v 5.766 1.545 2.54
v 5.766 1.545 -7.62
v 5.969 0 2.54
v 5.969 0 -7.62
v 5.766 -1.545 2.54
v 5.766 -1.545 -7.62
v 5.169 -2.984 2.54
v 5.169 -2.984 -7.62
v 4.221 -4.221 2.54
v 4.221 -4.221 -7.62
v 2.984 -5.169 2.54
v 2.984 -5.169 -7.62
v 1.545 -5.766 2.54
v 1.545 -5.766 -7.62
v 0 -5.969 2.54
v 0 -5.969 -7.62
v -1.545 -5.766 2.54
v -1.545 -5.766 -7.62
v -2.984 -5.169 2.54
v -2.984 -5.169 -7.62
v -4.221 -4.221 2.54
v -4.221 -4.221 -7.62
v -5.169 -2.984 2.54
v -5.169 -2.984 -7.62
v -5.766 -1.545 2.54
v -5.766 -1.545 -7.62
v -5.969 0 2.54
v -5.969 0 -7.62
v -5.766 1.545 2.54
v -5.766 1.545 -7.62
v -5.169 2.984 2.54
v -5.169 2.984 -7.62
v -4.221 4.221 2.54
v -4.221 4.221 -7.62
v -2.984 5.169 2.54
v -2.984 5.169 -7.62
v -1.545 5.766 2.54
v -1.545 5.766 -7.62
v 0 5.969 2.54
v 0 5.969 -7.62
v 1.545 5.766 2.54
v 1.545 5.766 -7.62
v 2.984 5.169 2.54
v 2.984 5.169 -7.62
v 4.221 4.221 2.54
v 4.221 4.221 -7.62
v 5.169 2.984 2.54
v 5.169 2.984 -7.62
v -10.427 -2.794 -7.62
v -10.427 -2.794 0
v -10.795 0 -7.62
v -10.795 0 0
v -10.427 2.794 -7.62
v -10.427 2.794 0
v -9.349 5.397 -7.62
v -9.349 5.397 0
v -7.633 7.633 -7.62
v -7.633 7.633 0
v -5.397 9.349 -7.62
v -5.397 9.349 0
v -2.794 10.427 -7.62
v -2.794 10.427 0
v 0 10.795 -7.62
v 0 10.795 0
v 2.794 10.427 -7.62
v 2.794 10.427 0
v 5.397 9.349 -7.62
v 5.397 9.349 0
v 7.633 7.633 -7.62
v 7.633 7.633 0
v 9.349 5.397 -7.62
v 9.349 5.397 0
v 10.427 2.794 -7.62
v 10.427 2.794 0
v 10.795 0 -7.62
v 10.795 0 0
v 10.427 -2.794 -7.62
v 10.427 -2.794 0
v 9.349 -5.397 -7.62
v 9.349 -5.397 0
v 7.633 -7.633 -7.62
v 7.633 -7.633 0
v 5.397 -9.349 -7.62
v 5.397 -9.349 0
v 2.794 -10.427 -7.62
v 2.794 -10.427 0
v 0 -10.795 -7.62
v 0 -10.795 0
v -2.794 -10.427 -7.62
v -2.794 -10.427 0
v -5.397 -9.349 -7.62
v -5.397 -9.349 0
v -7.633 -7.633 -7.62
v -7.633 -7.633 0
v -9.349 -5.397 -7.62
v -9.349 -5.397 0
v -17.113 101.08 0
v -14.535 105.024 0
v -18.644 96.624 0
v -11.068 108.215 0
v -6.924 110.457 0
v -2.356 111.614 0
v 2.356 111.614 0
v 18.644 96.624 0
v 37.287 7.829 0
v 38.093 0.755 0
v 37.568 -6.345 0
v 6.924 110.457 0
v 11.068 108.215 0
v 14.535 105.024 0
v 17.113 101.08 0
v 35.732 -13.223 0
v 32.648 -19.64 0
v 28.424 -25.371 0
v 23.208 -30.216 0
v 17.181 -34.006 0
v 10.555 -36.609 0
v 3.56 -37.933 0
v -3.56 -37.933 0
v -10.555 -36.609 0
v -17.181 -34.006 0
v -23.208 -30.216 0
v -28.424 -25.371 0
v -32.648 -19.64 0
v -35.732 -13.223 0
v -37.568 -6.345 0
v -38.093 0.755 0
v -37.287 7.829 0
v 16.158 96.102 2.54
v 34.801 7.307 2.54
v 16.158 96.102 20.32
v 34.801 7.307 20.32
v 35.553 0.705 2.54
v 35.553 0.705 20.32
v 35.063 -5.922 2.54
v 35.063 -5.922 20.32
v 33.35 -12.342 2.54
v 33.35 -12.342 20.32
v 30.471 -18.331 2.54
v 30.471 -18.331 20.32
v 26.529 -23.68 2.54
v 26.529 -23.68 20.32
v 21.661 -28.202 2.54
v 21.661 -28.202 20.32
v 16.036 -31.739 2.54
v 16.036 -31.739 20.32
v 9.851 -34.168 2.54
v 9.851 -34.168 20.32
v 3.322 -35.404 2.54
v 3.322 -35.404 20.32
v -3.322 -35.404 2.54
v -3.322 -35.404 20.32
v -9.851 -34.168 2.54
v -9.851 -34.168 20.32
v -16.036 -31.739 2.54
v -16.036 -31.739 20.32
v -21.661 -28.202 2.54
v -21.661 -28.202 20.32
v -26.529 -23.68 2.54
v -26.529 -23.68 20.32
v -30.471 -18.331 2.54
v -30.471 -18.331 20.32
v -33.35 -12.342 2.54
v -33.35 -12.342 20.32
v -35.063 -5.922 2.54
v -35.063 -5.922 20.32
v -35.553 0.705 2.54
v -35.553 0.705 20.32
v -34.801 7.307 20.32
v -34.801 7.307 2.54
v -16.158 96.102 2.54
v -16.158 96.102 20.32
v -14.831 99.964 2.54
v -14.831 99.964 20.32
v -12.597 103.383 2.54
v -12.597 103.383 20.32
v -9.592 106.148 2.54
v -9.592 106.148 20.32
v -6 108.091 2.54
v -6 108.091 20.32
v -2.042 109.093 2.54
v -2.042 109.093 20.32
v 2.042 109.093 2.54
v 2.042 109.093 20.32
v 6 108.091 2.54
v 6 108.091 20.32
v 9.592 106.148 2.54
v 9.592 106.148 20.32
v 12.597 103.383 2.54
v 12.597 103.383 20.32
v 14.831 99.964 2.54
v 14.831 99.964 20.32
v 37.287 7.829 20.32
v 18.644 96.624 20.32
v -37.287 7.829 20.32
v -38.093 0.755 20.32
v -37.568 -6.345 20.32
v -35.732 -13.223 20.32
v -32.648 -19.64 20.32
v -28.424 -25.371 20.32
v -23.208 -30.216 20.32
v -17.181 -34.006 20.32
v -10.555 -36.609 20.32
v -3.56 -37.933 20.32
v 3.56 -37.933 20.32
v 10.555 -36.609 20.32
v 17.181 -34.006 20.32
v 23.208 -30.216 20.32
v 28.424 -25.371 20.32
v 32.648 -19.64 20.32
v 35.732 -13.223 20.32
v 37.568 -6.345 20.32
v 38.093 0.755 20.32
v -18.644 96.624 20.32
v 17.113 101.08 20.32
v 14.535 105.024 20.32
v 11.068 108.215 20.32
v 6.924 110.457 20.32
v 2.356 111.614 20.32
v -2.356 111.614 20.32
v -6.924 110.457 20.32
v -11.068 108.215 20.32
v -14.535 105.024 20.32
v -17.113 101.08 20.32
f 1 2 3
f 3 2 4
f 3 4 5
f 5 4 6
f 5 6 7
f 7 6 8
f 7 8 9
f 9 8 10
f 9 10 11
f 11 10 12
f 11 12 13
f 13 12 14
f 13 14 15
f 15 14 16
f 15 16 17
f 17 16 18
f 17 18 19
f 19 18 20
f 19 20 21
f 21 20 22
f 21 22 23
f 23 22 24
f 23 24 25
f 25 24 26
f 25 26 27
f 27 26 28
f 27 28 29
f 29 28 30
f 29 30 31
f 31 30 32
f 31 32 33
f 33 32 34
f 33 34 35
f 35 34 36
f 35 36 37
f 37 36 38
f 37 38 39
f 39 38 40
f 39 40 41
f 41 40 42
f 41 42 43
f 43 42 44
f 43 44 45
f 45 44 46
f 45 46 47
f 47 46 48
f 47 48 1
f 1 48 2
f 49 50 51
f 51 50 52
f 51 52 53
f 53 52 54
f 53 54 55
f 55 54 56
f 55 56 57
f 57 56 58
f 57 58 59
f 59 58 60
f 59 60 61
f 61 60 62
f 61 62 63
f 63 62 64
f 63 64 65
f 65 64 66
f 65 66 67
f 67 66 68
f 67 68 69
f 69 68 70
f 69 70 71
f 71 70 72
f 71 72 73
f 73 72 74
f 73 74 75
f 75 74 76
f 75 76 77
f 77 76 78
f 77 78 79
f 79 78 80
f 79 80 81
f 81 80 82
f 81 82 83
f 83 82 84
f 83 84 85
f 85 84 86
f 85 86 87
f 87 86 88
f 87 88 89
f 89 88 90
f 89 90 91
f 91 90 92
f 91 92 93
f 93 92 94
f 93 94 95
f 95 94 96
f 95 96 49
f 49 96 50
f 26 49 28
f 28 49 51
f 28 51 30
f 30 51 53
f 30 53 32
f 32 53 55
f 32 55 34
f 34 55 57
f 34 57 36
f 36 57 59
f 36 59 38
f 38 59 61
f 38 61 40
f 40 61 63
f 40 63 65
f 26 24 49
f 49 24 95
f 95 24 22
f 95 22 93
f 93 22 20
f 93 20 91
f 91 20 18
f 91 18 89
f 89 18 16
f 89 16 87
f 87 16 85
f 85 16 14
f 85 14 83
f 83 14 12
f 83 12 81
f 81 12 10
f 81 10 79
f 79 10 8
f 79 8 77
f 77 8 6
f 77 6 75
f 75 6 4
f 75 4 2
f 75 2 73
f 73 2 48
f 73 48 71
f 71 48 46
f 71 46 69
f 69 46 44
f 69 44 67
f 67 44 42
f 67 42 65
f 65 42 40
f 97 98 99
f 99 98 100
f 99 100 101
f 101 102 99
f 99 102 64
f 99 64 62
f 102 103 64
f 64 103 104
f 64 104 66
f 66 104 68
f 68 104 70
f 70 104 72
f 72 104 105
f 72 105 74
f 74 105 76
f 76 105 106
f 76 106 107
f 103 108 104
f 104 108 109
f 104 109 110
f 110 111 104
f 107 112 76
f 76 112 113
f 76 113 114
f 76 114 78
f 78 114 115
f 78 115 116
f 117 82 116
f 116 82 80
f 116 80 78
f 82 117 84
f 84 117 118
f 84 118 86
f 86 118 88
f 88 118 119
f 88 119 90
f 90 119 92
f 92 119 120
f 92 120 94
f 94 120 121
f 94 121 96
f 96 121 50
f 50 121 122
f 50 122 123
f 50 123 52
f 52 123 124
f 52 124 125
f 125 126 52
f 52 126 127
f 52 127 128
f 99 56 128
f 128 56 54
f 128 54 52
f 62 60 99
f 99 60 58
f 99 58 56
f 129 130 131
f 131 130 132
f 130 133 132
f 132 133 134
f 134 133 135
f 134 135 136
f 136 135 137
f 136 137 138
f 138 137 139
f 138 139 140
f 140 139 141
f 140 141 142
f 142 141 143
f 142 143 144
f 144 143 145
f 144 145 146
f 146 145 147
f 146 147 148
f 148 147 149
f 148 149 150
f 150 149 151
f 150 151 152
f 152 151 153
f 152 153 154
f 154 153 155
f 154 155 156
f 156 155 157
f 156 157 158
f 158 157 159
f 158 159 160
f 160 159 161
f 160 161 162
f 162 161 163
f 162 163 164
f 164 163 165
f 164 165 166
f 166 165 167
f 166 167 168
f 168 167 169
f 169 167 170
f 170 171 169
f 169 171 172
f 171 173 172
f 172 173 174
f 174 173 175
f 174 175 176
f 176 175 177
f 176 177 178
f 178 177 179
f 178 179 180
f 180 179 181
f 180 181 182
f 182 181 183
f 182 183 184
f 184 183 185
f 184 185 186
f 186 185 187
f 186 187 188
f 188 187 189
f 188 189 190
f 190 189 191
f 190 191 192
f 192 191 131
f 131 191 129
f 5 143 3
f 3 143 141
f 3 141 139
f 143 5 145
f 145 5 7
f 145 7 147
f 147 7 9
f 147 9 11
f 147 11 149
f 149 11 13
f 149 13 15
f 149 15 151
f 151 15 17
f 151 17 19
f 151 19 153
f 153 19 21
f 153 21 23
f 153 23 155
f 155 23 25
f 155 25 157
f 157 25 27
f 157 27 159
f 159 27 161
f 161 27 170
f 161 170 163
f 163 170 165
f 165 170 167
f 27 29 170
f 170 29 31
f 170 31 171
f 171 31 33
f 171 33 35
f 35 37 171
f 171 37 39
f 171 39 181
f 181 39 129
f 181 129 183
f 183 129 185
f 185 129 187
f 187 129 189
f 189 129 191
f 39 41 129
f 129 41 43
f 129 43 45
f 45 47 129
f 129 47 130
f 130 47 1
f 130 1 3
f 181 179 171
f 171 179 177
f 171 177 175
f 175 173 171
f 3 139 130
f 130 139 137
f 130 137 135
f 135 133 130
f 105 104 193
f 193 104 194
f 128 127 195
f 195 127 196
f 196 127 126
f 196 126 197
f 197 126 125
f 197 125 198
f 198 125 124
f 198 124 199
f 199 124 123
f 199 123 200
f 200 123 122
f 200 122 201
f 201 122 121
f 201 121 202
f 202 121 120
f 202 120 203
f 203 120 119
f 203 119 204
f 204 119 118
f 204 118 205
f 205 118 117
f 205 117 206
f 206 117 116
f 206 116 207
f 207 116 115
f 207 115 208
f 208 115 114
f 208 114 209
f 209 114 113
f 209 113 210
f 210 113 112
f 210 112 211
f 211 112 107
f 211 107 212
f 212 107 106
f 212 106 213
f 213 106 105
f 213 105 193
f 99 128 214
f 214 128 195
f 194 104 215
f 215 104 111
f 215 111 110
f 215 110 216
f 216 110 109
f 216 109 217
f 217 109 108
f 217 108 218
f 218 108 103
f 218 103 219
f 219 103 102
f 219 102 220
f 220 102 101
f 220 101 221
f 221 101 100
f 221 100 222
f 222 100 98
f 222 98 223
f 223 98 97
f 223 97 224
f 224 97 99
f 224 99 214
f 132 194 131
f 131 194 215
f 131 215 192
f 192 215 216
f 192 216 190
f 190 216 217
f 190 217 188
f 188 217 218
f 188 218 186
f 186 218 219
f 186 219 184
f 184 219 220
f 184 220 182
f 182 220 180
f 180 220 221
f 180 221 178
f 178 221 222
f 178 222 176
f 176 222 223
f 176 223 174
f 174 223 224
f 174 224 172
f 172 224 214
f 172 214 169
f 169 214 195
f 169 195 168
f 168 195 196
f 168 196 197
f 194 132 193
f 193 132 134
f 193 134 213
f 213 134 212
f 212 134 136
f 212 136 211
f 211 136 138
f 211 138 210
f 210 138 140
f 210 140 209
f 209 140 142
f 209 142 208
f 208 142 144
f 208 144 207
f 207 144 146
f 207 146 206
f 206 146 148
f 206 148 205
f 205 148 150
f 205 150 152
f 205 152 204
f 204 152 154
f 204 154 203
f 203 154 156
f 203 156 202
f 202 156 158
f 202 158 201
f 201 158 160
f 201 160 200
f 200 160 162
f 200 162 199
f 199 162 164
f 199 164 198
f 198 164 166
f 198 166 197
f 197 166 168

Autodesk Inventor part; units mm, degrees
ref_plane "YZ Plane" through (0, 0, 0) normal (1, 0, 0) x (0, 1, 0)
ref_plane "XZ Plane" through (0, 0, 0) normal (0, 1, 0) x (-1, 0, 0)
ref_plane "XY Plane" through (0, 0, 0) normal (0, 0, 1) x (1, 0, 0)
sketch "Sketch1" plane through (0, 0, 0) normal (0, 0, 1) x (1, 0, 0)
  arc A0 (-37.287, 7.8288) -> (37.287, 7.8288) centre (0, 0) ccw
  arc A1 (18.6435, 96.6244) -> (-18.6435, 96.6244) centre (0, 92.71) ccw
  line L0 (-18.6435, 96.6244) -> (-37.287, 7.8288)
  line L1 (18.6435, 96.6244) -> (37.287, 7.8288)
  dimension "d0" = 76.2
  dimension "d1" = 38.1
  dimension "d2" = 149.86
extrude "Extrusion1" add sketch "Sketch1" along normal blind 20.32
shell "Shell1" thickness 2.54 removed faces 1 at (-6.2145, 37.4273, 20.32)
sketch "Sketch2" plane through (0, 0, 0) normal (0, 0, -1) x (-1, 0, 0)
  circle A0 centre (0, 0) radius 5.969
  arc A1 (-37.287, 7.8288) -> (37.287, 7.8288) centre (0, 0) ccw projected
  circle A2 centre (0, 0) radius 10.795
  dimension "d6" = 11.938
  dimension "d7" = 21.59
extrude "Extrusion2" add sketch "Sketch2" along normal blind 7.62
hole "Hole1" at (0, 0, 0) direction (0, 0, 1) diameter 11.938 end through all
properties part number "ChainGuard"
